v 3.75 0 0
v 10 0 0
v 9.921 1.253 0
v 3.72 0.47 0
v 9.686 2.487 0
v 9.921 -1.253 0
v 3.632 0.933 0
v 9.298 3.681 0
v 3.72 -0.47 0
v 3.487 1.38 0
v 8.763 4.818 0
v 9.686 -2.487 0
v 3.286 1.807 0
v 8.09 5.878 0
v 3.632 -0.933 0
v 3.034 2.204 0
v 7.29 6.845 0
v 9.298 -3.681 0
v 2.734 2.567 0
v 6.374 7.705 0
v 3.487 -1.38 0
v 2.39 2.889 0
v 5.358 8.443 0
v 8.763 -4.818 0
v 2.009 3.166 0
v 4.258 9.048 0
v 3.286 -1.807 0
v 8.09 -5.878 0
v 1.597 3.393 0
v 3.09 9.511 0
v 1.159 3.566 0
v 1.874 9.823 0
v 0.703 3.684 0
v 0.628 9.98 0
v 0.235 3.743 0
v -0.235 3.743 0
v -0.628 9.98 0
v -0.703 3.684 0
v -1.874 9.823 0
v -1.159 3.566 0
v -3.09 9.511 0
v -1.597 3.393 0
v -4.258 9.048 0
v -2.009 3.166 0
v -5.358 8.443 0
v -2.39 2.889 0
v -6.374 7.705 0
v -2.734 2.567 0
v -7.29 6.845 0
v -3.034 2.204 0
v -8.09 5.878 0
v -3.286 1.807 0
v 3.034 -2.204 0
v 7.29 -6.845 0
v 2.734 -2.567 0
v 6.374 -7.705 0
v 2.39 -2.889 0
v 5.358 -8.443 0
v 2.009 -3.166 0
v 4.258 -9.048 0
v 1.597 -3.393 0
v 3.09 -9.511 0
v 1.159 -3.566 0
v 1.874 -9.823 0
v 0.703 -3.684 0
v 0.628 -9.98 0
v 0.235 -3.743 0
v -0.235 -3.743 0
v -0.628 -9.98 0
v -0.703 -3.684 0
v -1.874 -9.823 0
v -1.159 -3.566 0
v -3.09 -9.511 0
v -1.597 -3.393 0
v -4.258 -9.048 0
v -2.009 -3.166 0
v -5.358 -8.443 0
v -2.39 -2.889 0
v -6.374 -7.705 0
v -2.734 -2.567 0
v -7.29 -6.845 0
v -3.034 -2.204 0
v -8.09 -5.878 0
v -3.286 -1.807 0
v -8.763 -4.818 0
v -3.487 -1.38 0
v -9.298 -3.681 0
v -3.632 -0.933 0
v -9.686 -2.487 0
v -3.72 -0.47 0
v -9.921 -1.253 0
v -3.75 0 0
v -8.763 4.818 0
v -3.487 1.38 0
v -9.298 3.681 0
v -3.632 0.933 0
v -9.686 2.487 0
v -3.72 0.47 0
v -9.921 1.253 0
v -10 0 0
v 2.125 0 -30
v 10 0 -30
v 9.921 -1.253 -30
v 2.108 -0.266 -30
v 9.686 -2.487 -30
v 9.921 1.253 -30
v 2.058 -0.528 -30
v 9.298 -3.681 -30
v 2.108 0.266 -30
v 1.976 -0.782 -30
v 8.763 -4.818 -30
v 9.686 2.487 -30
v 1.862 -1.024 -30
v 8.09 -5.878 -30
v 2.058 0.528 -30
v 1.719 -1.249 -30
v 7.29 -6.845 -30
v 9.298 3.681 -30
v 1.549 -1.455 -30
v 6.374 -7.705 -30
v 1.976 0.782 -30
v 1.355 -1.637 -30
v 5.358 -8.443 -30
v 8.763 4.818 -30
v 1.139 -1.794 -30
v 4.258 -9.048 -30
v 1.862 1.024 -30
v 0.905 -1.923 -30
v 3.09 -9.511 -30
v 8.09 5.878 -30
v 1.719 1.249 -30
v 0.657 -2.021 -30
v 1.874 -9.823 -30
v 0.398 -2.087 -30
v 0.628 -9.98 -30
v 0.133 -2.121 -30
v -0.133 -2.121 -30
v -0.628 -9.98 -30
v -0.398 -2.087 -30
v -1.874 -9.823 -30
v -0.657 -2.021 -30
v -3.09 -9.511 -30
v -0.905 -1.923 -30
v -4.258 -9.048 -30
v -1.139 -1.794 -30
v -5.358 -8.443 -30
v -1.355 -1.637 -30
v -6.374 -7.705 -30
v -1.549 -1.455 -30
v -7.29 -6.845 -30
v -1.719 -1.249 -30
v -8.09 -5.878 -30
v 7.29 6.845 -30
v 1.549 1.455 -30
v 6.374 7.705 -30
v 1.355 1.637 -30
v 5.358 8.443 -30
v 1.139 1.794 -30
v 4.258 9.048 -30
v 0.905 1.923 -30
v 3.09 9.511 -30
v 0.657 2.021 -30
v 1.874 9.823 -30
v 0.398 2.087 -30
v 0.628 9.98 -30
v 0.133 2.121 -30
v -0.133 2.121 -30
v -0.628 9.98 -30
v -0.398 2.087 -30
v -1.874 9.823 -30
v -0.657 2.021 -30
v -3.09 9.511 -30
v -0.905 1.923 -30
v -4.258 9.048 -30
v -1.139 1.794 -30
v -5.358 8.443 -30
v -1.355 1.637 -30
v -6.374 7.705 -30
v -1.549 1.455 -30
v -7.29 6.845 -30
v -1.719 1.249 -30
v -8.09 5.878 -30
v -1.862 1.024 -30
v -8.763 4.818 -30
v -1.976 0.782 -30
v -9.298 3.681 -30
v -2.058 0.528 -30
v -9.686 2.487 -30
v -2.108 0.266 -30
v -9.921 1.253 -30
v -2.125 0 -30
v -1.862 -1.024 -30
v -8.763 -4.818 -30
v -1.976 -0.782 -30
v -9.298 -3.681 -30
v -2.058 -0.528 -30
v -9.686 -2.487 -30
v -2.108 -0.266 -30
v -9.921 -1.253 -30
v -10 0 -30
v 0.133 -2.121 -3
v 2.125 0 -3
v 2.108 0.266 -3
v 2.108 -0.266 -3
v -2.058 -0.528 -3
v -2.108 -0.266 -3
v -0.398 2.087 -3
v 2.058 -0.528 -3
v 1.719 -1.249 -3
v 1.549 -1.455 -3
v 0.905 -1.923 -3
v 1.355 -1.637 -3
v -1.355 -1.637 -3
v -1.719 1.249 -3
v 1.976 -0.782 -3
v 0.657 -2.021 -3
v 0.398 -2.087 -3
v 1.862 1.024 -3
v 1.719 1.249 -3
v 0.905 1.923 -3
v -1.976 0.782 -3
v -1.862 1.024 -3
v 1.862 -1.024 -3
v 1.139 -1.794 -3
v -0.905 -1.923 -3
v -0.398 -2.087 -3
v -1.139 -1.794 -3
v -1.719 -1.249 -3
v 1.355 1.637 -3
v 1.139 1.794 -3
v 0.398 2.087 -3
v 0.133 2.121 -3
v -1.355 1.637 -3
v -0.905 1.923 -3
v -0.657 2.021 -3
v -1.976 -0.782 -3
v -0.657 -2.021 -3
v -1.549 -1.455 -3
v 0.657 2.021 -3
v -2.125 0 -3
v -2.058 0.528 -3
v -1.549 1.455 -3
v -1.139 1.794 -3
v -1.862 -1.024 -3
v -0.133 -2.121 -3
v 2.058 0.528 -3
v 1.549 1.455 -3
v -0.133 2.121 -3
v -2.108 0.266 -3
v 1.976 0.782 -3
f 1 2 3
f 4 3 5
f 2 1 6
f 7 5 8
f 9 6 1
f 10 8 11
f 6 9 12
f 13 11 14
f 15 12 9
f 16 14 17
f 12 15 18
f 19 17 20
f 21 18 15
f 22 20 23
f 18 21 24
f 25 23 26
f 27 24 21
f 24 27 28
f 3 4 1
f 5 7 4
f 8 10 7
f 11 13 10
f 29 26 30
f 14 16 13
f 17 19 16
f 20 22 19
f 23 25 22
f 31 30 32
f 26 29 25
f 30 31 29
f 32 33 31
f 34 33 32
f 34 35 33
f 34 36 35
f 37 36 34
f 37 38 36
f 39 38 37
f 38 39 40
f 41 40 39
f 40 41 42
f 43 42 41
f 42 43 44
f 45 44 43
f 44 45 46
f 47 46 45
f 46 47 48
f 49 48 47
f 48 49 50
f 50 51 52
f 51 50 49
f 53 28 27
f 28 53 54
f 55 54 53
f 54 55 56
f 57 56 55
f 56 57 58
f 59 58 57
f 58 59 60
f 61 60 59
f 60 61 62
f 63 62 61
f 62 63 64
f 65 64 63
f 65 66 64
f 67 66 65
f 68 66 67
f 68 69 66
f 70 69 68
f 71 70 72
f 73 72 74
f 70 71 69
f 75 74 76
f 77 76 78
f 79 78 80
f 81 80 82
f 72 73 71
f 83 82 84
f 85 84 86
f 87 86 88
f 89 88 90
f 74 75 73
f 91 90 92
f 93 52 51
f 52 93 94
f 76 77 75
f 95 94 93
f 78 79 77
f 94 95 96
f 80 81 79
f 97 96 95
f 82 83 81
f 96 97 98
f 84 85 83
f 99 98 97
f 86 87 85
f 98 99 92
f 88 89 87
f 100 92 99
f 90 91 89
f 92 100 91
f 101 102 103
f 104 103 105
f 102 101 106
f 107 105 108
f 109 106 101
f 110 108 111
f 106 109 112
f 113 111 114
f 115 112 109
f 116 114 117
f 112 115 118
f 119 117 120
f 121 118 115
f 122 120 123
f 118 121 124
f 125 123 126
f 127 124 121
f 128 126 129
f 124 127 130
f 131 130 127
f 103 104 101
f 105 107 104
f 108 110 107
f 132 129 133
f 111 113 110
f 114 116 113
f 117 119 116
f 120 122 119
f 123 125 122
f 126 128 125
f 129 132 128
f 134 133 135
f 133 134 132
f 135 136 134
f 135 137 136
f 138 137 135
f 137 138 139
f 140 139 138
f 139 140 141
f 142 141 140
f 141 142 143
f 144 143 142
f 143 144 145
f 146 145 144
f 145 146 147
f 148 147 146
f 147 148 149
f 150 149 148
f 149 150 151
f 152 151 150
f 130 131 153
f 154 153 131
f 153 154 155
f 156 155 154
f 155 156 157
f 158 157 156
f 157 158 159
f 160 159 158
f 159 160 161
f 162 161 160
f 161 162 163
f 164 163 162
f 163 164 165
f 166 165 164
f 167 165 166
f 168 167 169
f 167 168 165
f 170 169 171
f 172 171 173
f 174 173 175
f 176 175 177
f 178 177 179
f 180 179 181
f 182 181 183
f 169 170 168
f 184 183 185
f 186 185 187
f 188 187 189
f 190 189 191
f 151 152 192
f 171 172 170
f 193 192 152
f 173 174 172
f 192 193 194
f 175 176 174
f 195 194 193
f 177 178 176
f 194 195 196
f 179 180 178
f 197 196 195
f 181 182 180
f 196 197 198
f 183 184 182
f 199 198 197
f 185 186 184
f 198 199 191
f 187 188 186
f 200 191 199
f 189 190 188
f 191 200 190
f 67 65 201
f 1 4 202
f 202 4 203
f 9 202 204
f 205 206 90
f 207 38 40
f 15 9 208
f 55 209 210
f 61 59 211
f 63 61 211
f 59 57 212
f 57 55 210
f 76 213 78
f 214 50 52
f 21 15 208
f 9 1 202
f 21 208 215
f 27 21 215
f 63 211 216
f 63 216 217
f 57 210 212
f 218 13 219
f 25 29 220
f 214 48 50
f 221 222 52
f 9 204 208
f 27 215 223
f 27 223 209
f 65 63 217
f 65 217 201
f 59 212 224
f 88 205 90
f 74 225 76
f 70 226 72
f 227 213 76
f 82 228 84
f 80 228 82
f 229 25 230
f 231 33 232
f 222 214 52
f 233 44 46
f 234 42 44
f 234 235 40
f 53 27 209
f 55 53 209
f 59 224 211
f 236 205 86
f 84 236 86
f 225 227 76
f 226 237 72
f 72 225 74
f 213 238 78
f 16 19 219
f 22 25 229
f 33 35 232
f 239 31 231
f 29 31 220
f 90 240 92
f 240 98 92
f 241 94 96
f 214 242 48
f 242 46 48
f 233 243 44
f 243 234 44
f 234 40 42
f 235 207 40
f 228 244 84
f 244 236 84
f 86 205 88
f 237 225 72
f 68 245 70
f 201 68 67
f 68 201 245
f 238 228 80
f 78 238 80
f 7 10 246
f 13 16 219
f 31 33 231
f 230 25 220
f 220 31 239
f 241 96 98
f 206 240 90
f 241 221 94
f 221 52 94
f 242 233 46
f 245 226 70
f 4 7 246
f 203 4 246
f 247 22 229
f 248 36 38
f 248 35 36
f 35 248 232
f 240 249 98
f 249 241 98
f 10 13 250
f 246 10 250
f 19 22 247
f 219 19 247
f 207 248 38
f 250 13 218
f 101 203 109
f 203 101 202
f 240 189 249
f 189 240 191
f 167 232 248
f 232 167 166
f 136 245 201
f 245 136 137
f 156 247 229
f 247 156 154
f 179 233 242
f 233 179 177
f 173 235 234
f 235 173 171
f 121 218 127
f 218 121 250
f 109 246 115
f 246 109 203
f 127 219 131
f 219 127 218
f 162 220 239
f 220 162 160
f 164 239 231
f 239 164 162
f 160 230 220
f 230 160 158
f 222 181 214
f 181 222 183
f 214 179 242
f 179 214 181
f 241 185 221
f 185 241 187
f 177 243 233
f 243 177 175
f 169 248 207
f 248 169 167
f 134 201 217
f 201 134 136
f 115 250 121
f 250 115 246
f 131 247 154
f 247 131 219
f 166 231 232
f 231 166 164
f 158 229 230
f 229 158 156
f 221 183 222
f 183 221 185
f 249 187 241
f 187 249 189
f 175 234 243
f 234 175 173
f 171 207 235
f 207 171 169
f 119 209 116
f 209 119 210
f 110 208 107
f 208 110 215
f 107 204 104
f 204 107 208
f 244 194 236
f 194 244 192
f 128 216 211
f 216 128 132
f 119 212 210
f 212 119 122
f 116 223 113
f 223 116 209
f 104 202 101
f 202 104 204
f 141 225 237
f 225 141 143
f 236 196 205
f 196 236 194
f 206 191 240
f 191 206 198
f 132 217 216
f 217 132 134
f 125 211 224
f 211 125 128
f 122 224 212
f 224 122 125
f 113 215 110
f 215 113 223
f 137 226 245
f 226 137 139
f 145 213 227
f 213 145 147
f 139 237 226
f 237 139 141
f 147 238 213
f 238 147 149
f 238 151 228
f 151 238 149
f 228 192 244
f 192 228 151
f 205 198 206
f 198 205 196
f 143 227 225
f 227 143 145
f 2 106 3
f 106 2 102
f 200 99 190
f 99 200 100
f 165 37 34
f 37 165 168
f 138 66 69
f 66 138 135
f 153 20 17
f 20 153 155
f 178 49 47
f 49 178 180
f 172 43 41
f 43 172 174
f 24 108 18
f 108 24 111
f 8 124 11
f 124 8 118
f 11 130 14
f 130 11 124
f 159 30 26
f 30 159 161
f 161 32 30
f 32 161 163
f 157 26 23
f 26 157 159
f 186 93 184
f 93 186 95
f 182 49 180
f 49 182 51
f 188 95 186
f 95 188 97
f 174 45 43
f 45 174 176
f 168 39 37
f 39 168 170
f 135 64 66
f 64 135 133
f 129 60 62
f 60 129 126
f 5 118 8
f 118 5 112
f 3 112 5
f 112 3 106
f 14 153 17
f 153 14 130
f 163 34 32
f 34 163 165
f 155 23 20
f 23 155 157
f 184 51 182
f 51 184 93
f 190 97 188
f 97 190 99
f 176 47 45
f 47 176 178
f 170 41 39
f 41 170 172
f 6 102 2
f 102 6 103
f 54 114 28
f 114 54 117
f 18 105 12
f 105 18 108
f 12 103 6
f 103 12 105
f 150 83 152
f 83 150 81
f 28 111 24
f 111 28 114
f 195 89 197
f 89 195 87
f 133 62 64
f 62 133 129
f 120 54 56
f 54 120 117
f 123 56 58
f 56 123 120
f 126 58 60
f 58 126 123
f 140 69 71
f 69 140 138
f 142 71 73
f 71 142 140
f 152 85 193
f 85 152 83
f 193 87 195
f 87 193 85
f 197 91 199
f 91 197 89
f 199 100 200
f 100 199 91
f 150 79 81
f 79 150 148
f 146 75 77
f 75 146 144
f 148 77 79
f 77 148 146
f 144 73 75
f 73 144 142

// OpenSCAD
$fn = 50;


difference() {
	union() {
		translate(v = [0, 0, -30.0000000000]) {
			cylinder(h = 30, r = 10.0000000000);
		}
		cylinder(h = 0, r = 19.0000000000);
	}
	union() {
		translate(v = [0, 0, 0]) {
			rotate(a = [0, 0, 0]) {
				difference() {
					union() {
						#translate(v = [0, 0, -30.0000000000]) {
							cylinder(h = 30, r = 2.0000000000);
						}
						#translate(v = [0, 0, -3]) {
							cylinder(h = 3, r = 10.0000000000, r1 = 2.1250000000, r2 = 3.7500000000);
						}
						#translate(v = [0, 0, -30.0000000000]) {
							cylinder(h = 30, r = 2.1250000000);
						}
						#translate(v = [0, 0, -30.0000000000]) {
							cylinder(h = 30, r = 2.0000000000);
						}
					}
					union();
				}
			}
		}
	}
}
